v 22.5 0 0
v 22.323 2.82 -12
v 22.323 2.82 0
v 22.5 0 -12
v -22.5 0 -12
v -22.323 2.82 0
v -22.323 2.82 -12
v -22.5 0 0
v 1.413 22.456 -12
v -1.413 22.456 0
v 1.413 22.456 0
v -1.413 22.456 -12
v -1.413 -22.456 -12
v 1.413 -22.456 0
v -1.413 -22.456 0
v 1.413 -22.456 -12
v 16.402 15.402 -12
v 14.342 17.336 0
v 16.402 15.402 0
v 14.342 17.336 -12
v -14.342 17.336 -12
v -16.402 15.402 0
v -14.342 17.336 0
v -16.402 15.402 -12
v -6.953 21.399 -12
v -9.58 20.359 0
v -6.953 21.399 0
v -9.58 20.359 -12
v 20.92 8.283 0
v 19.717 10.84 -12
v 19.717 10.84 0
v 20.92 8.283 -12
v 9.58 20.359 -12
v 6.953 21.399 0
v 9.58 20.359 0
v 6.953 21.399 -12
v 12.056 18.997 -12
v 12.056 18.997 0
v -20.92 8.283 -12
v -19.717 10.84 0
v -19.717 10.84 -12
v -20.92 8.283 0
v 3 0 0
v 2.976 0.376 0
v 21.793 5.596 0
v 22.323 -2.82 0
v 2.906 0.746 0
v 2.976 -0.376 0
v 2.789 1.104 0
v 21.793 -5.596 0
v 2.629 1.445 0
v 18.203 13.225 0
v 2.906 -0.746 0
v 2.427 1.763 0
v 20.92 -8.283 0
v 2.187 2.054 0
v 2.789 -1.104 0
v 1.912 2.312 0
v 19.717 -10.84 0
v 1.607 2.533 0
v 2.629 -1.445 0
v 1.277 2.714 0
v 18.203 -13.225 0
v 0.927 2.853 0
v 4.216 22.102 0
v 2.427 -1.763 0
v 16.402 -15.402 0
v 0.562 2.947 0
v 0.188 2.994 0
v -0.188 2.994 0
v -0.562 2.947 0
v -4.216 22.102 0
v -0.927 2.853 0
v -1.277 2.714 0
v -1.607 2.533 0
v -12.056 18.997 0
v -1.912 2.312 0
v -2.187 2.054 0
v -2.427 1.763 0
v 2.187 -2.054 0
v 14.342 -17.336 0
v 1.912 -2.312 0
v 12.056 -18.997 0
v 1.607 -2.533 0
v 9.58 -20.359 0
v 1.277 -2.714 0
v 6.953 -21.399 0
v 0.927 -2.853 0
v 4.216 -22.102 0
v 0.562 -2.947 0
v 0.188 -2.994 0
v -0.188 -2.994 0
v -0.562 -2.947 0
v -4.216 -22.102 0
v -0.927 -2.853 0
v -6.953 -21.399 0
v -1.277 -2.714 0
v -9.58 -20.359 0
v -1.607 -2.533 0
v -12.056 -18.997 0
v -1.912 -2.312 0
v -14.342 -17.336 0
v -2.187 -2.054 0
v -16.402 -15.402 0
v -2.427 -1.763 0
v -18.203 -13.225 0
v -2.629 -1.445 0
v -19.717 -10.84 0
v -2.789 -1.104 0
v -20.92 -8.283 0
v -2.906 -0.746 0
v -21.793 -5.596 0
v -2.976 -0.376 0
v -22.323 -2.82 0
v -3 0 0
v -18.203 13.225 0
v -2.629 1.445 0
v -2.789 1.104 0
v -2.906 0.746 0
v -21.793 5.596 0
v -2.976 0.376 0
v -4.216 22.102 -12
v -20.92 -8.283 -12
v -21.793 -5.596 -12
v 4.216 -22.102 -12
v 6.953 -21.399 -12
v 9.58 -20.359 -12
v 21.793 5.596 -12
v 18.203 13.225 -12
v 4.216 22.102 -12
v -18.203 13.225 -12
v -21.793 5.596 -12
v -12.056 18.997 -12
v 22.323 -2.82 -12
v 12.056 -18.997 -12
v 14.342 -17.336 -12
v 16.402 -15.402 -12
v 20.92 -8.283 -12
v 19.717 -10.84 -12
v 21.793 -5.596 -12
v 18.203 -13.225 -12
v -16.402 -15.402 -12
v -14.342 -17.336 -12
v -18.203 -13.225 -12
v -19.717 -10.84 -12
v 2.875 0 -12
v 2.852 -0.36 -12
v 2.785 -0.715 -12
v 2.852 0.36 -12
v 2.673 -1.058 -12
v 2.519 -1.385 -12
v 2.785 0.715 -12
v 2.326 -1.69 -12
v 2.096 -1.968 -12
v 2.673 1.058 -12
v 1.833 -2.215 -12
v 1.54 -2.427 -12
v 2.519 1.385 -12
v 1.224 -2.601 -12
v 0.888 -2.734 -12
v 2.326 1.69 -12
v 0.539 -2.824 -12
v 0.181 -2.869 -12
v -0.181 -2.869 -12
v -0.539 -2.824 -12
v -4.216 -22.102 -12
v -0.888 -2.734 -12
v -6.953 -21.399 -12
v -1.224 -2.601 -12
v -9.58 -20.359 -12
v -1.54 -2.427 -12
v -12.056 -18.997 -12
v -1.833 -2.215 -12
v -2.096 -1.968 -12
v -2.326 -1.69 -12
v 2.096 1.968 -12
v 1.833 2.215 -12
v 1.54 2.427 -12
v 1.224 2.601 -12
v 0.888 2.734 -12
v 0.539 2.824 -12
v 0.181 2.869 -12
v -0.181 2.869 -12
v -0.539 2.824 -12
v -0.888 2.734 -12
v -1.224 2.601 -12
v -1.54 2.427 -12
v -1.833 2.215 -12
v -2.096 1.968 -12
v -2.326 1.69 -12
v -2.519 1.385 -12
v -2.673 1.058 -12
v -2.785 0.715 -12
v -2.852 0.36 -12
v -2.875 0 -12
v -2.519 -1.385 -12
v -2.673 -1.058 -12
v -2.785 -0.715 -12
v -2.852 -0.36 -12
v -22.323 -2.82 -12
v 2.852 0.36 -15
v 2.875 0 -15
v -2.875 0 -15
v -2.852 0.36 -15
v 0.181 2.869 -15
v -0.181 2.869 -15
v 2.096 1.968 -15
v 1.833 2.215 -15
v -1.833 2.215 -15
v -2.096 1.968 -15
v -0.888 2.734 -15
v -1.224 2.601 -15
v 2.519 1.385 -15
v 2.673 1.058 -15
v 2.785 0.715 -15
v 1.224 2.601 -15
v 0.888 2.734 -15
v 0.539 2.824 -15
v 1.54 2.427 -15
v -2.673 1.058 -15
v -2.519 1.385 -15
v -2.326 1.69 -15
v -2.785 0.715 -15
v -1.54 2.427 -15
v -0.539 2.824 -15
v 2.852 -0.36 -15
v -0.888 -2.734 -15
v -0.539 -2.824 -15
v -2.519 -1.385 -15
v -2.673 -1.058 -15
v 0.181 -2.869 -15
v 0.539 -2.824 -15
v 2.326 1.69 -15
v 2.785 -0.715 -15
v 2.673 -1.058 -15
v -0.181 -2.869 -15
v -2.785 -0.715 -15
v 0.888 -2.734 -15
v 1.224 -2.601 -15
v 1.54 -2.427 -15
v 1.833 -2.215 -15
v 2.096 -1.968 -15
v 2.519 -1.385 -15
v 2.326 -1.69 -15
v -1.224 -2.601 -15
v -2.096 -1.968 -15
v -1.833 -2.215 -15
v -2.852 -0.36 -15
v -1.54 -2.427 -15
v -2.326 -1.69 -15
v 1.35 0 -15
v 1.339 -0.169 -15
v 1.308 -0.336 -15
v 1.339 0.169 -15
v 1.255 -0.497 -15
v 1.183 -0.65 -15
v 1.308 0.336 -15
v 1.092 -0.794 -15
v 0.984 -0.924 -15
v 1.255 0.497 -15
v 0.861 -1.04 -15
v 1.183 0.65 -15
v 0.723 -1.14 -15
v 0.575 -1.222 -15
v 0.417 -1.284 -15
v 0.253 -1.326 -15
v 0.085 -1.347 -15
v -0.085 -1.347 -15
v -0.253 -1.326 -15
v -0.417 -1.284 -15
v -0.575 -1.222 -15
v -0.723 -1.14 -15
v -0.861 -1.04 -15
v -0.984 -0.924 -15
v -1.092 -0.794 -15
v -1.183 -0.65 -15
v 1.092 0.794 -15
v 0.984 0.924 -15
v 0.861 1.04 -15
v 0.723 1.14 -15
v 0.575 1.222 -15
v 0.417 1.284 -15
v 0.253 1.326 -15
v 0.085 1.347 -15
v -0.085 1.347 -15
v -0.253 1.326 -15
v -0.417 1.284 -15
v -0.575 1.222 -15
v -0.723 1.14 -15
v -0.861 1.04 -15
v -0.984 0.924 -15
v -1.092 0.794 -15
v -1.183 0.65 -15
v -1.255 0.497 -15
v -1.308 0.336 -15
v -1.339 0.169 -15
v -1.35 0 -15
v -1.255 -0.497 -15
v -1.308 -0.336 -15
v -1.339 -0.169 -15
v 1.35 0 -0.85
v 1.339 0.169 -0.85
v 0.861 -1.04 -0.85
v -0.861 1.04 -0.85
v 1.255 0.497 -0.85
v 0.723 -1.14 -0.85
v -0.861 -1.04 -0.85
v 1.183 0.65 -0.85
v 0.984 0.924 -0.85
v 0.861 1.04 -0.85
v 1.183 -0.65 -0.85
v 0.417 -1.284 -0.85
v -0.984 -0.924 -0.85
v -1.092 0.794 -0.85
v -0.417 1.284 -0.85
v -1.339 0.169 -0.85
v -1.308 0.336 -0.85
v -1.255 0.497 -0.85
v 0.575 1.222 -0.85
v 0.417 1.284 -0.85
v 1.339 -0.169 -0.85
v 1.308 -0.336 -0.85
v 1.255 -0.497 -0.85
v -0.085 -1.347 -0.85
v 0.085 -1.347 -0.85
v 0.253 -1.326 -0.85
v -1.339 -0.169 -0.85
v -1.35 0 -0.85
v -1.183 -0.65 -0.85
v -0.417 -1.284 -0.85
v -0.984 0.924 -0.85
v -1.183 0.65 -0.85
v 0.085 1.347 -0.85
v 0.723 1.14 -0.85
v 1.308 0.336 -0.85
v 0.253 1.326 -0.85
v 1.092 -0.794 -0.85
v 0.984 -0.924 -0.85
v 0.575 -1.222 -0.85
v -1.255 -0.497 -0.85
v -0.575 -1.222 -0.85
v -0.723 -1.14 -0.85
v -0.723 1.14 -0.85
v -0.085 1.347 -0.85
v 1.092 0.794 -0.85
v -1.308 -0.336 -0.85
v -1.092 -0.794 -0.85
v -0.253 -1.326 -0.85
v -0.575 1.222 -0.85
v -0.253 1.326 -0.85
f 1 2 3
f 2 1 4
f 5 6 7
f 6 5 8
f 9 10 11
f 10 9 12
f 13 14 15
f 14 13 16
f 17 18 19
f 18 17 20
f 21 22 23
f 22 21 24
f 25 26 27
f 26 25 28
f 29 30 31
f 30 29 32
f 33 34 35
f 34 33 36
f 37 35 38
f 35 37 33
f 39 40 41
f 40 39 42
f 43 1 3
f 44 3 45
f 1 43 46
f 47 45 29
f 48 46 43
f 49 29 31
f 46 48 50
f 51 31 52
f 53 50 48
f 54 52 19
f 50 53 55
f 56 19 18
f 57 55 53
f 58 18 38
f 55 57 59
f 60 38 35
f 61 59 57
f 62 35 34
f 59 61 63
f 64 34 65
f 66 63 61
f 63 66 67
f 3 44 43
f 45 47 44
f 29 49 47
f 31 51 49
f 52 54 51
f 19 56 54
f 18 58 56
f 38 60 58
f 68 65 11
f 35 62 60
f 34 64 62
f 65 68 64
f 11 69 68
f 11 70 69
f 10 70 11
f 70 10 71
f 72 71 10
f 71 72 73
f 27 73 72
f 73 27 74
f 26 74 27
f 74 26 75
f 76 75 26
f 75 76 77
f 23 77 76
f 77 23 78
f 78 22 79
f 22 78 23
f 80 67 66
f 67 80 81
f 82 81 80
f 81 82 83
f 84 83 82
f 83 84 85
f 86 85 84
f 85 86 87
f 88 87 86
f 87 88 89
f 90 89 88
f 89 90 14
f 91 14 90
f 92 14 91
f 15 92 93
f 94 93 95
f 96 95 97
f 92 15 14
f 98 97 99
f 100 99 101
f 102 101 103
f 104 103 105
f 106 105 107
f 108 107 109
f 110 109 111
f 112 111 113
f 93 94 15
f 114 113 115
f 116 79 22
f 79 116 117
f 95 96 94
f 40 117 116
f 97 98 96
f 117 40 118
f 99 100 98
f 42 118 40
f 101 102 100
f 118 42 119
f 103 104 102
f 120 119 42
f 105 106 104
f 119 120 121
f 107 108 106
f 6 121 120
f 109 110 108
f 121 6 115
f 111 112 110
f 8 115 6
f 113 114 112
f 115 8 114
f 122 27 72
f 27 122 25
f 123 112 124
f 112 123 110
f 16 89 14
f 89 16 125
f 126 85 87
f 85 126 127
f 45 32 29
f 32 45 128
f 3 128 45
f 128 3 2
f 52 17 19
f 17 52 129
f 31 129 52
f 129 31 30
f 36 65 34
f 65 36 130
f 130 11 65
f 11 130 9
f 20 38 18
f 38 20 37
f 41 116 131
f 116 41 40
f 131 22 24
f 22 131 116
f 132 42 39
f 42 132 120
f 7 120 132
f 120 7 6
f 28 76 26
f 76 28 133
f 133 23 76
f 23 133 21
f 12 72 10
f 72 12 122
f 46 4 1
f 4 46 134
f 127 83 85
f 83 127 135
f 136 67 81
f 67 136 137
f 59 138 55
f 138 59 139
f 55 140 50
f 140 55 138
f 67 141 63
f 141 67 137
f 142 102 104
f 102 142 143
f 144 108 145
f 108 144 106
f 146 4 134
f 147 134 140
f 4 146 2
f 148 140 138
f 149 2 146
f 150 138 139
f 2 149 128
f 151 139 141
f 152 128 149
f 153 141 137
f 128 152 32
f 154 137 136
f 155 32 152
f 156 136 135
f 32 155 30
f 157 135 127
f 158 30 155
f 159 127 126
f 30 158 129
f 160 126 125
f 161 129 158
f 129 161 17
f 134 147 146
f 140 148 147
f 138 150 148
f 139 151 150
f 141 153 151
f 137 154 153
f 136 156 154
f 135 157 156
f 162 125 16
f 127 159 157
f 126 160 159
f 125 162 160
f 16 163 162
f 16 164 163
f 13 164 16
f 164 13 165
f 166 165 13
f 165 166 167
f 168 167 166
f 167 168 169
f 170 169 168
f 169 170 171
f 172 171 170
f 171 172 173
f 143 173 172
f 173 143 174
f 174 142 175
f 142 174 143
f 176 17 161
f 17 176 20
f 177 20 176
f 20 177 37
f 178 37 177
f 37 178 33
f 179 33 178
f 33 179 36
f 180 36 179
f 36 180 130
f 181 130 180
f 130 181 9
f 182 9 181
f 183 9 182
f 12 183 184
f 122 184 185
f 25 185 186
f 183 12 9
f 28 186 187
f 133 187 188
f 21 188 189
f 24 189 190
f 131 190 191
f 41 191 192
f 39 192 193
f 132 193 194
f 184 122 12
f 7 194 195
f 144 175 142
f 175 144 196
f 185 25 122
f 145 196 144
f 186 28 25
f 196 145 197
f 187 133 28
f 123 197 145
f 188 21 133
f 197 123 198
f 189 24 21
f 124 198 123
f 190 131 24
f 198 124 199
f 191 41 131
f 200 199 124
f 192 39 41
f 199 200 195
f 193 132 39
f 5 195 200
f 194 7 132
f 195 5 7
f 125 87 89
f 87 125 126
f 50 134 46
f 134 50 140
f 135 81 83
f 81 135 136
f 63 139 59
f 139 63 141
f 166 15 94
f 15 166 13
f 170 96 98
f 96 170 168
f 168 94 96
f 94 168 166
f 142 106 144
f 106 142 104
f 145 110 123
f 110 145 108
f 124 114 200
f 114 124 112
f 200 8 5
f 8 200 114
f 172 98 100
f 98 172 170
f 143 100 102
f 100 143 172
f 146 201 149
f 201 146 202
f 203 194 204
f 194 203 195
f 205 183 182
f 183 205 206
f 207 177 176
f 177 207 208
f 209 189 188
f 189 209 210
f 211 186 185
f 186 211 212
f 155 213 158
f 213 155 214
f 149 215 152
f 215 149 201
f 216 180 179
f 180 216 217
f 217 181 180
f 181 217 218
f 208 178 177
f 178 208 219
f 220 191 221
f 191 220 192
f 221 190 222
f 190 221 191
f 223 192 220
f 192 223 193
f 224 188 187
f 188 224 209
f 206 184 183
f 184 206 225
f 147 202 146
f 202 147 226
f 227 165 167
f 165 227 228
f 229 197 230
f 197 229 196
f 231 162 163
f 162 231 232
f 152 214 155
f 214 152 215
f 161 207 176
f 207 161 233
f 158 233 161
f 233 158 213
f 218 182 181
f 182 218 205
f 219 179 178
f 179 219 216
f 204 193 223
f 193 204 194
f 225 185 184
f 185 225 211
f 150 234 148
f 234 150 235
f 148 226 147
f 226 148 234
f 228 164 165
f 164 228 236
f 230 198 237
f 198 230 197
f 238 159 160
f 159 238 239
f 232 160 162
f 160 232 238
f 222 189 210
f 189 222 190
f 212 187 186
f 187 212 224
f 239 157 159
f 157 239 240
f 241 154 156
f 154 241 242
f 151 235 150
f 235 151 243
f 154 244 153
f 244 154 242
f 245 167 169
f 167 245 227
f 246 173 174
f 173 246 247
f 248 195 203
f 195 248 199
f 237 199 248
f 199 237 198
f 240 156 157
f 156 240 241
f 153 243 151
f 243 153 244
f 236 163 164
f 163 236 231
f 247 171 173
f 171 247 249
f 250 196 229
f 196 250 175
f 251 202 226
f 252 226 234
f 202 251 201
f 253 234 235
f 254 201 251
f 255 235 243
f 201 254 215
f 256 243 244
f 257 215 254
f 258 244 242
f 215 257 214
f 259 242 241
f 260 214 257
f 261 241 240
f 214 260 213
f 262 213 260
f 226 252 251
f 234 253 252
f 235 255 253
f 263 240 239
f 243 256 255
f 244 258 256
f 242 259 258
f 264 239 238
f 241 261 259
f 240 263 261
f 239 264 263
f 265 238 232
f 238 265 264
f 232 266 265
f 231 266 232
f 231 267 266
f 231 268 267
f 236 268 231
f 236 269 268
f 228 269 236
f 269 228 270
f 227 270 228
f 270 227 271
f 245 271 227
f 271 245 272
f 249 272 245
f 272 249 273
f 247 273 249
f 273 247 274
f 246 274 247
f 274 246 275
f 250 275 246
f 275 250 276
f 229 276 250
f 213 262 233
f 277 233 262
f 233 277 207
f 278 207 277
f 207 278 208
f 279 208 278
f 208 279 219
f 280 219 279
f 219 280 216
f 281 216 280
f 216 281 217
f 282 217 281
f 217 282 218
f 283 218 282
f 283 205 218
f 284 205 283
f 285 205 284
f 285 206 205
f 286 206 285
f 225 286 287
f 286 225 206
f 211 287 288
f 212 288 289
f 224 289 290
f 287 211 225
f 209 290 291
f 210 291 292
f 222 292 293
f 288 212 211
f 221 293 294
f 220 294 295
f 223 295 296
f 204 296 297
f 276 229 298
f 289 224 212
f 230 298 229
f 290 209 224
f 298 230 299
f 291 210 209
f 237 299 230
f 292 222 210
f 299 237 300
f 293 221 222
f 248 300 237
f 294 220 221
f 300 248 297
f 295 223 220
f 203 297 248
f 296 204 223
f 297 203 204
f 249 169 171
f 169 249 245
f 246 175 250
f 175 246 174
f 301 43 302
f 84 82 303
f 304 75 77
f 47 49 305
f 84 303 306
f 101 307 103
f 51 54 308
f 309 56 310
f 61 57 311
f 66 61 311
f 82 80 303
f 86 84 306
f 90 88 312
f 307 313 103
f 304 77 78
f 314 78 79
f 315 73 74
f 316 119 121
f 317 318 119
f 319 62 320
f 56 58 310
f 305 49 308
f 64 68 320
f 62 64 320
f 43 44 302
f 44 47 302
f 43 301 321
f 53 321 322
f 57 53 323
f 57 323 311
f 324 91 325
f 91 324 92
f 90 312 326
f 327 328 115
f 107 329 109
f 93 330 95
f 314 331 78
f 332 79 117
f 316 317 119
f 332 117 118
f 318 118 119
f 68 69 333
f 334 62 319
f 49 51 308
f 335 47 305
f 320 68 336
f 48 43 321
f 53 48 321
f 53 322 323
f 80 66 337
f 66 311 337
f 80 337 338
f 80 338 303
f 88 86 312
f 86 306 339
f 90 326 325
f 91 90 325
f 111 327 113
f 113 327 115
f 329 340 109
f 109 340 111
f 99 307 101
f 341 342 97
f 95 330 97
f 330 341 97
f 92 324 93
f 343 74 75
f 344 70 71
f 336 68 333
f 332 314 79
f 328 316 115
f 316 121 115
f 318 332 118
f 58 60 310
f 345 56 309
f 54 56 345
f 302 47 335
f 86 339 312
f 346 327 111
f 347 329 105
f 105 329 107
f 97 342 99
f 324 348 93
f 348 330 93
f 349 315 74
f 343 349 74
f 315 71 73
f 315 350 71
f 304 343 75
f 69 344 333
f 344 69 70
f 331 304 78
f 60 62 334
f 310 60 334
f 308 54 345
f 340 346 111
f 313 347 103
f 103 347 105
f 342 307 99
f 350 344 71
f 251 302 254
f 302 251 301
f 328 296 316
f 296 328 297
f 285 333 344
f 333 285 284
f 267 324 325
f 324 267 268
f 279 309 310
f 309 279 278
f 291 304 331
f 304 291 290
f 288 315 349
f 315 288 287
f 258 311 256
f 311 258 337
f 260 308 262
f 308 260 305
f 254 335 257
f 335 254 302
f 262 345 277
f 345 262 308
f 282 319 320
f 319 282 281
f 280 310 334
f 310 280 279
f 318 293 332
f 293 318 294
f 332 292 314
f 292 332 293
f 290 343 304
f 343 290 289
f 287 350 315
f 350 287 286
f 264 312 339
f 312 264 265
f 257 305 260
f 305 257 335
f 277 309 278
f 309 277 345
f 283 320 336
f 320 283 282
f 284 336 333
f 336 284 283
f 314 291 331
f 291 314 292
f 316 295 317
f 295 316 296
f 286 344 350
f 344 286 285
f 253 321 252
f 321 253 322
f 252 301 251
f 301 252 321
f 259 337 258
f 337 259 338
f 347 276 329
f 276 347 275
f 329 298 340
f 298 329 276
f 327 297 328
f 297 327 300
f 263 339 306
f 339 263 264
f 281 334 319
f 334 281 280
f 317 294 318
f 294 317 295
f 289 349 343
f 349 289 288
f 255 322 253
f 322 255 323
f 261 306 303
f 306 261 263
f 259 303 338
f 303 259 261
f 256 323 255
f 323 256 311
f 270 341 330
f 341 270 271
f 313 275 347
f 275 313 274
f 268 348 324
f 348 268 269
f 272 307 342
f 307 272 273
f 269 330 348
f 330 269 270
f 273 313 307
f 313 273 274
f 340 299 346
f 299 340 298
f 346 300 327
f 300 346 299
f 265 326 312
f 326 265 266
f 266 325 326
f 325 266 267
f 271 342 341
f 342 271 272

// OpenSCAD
$fn = 50;


difference() {
	union() {
		translate(v = [0, 0, -12.0000000000]) {
			cylinder(h = 12, r = 22.5000000000);
		}
		#translate(v = [0, 0, -15.0000000000]) {
			cylinder(h = 15, r = 2.8750000000);
		}
	}
	union() {
		translate(v = [0, 0, 0]) {
			rotate(a = [0, 0, 0]) {
				difference() {
					union() {
						translate(v = [0, 0, -15.0000000000]) {
							cylinder(h = 15, r = 1.0000000000);
						}
						translate(v = [0, 0, -0.8500000000]) {
							cylinder(h = 0.8500000000, r1 = 1.3500000000, r2 = 3.0000000000);
						}
						translate(v = [0, 0, -15.0000000000]) {
							cylinder(h = 15, r = 1.3500000000);
						}
						translate(v = [0, 0, -15.0000000000]) {
							cylinder(h = 15, r = 1.0000000000);
						}
					}
					union();
				}
			}
		}
	}
}
